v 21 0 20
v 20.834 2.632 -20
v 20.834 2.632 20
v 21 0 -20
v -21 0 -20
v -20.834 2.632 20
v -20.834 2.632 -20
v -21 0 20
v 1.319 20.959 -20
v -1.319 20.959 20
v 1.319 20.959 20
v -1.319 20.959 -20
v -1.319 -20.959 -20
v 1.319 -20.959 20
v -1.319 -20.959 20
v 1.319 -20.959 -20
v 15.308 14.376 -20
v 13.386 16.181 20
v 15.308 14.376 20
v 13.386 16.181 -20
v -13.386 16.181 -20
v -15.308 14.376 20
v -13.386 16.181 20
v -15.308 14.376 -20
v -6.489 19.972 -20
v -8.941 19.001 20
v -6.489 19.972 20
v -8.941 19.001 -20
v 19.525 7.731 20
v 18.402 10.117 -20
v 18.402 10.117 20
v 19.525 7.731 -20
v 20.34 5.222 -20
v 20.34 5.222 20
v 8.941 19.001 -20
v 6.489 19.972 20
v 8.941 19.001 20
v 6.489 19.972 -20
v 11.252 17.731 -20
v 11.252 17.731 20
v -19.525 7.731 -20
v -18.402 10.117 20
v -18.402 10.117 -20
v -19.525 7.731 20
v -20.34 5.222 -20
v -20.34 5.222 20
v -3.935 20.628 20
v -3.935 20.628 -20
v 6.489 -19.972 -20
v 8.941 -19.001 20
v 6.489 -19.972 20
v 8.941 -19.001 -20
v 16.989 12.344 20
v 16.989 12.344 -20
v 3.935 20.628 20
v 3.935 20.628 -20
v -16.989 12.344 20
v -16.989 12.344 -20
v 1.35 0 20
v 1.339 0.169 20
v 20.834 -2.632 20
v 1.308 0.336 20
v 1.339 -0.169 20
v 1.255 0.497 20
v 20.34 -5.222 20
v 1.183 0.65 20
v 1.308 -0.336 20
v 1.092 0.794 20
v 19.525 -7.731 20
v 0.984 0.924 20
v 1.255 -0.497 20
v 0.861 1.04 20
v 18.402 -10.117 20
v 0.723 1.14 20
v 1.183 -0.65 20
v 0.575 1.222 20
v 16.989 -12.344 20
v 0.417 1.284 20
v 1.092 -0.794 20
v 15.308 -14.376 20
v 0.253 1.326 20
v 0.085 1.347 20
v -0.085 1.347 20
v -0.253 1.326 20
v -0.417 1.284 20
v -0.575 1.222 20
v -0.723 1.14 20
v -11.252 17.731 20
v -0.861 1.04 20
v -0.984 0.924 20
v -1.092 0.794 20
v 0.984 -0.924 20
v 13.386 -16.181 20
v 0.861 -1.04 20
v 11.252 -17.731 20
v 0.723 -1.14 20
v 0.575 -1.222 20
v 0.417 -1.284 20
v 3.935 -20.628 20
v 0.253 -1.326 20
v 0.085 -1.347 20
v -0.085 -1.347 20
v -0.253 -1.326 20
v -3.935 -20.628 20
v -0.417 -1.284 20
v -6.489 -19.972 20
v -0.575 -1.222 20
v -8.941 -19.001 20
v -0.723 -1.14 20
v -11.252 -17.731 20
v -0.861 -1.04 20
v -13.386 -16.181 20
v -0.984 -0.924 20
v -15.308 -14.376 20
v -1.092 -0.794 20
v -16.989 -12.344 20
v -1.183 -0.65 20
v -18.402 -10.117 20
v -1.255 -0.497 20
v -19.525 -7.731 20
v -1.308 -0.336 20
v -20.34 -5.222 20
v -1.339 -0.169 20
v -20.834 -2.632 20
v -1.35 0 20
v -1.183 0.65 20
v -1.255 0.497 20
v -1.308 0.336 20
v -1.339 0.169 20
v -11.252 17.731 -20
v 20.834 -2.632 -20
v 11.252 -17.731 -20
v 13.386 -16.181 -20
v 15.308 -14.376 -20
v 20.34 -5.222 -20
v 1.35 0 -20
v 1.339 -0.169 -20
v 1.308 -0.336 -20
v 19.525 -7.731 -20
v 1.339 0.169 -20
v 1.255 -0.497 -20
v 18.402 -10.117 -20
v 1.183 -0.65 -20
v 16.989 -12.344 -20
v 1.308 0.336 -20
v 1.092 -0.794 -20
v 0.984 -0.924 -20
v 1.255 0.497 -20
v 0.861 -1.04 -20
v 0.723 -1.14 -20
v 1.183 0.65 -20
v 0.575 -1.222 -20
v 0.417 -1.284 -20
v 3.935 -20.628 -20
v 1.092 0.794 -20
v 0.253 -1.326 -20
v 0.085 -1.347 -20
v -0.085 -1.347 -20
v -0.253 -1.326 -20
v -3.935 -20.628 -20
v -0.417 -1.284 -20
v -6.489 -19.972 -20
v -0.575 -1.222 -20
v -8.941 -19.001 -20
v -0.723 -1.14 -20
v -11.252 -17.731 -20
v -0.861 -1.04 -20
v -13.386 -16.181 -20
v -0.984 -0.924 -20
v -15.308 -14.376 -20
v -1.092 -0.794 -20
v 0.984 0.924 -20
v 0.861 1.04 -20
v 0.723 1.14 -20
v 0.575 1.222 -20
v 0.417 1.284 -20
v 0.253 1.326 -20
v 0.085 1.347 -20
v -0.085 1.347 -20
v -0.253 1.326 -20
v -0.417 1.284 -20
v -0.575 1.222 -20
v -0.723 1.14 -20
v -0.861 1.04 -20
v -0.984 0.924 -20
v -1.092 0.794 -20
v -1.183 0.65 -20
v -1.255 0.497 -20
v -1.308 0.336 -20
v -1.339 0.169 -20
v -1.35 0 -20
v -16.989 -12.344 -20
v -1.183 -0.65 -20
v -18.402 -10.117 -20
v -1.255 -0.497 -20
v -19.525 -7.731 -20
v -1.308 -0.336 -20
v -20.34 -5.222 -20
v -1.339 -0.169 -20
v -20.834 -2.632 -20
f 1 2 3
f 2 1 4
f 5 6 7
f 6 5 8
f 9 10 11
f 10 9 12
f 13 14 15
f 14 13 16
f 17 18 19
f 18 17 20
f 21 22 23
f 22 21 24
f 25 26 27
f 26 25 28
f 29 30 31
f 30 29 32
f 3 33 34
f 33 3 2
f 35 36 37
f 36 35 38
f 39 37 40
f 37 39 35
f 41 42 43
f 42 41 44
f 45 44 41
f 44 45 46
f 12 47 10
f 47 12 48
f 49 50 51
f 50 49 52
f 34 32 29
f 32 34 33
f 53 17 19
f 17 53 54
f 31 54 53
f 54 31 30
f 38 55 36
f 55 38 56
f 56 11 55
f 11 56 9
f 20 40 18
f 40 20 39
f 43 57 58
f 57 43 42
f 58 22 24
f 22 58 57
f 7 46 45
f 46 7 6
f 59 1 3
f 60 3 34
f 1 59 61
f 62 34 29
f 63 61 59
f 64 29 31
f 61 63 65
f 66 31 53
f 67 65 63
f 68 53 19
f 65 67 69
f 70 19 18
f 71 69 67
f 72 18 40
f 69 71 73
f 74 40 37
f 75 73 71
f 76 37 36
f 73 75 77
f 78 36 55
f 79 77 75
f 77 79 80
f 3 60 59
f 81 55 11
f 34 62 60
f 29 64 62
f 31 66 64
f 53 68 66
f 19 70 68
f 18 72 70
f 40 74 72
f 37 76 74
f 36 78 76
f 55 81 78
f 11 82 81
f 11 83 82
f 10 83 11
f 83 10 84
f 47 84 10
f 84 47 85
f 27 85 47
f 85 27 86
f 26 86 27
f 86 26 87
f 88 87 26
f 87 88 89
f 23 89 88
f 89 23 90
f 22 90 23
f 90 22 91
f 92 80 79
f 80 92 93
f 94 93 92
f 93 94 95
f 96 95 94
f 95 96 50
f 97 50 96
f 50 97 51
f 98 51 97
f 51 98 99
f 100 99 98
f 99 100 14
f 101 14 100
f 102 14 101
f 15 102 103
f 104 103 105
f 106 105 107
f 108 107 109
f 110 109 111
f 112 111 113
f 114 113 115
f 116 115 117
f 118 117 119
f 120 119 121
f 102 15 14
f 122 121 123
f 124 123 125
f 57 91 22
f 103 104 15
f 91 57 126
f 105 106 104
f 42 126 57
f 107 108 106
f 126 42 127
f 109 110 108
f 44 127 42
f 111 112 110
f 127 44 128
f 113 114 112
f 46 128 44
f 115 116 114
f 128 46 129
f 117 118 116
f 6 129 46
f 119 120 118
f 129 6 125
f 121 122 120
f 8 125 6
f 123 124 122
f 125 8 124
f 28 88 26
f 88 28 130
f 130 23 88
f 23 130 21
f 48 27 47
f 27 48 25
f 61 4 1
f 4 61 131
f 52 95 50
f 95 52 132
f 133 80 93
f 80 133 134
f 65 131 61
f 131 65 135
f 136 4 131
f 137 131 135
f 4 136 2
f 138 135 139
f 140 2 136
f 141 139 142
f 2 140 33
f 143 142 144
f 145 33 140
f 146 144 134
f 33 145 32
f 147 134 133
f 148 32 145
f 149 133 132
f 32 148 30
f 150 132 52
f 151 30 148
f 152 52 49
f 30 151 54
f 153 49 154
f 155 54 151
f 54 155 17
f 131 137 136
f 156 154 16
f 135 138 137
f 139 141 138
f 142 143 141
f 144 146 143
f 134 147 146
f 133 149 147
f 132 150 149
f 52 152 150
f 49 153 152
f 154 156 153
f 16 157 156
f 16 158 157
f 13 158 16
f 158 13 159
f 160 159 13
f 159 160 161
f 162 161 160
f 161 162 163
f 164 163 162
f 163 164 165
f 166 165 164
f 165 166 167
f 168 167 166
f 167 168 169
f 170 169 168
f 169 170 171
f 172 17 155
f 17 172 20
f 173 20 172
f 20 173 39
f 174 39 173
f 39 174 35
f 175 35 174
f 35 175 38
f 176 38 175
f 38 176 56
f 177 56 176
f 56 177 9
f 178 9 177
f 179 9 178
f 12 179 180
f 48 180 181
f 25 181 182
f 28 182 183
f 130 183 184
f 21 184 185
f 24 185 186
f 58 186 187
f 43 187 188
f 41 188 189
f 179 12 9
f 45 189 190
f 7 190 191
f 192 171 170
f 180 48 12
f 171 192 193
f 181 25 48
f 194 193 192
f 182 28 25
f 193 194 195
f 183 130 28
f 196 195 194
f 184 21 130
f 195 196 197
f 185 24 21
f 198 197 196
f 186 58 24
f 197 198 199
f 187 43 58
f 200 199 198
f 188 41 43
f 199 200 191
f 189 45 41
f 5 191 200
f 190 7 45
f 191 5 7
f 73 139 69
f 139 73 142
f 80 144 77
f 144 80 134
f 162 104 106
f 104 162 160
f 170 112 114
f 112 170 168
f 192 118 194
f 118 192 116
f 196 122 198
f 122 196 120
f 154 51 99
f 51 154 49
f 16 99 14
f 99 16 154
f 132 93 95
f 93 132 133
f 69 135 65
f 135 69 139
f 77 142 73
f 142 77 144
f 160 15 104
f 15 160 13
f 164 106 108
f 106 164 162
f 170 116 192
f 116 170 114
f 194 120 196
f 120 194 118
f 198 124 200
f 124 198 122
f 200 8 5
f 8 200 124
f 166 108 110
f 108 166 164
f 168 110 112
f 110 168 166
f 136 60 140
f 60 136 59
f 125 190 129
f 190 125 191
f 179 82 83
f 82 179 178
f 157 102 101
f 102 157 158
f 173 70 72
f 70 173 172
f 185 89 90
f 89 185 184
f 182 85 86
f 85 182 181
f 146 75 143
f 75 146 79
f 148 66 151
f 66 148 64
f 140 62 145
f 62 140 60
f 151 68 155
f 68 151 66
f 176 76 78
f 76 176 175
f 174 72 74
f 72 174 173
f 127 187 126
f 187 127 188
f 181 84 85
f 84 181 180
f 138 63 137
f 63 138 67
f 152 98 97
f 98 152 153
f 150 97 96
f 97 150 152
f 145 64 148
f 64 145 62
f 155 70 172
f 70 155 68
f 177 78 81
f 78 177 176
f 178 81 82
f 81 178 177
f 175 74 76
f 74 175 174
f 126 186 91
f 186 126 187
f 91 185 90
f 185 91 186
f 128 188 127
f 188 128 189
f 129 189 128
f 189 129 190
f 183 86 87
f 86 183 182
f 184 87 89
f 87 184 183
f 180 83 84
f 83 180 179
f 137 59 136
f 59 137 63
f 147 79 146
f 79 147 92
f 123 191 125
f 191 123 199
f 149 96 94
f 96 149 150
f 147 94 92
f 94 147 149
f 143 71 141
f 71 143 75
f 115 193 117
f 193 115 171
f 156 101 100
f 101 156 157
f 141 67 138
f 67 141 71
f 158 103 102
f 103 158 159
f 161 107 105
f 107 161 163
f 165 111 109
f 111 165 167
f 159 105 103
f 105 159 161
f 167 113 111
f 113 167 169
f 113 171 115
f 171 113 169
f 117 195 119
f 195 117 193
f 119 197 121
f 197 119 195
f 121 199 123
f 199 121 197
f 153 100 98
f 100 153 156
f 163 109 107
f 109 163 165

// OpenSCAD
$fn = 50;


difference() {
	union() {
		translate(v = [0, 0, -20.0000000000]) {
			cylinder(h = 40, r = 21.0000000000);
		}
	}
	union() {
		translate(v = [0, 0, -100.0000000000]) {
			cylinder(h = 200, r = 1.3500000000);
		}
	}
}
